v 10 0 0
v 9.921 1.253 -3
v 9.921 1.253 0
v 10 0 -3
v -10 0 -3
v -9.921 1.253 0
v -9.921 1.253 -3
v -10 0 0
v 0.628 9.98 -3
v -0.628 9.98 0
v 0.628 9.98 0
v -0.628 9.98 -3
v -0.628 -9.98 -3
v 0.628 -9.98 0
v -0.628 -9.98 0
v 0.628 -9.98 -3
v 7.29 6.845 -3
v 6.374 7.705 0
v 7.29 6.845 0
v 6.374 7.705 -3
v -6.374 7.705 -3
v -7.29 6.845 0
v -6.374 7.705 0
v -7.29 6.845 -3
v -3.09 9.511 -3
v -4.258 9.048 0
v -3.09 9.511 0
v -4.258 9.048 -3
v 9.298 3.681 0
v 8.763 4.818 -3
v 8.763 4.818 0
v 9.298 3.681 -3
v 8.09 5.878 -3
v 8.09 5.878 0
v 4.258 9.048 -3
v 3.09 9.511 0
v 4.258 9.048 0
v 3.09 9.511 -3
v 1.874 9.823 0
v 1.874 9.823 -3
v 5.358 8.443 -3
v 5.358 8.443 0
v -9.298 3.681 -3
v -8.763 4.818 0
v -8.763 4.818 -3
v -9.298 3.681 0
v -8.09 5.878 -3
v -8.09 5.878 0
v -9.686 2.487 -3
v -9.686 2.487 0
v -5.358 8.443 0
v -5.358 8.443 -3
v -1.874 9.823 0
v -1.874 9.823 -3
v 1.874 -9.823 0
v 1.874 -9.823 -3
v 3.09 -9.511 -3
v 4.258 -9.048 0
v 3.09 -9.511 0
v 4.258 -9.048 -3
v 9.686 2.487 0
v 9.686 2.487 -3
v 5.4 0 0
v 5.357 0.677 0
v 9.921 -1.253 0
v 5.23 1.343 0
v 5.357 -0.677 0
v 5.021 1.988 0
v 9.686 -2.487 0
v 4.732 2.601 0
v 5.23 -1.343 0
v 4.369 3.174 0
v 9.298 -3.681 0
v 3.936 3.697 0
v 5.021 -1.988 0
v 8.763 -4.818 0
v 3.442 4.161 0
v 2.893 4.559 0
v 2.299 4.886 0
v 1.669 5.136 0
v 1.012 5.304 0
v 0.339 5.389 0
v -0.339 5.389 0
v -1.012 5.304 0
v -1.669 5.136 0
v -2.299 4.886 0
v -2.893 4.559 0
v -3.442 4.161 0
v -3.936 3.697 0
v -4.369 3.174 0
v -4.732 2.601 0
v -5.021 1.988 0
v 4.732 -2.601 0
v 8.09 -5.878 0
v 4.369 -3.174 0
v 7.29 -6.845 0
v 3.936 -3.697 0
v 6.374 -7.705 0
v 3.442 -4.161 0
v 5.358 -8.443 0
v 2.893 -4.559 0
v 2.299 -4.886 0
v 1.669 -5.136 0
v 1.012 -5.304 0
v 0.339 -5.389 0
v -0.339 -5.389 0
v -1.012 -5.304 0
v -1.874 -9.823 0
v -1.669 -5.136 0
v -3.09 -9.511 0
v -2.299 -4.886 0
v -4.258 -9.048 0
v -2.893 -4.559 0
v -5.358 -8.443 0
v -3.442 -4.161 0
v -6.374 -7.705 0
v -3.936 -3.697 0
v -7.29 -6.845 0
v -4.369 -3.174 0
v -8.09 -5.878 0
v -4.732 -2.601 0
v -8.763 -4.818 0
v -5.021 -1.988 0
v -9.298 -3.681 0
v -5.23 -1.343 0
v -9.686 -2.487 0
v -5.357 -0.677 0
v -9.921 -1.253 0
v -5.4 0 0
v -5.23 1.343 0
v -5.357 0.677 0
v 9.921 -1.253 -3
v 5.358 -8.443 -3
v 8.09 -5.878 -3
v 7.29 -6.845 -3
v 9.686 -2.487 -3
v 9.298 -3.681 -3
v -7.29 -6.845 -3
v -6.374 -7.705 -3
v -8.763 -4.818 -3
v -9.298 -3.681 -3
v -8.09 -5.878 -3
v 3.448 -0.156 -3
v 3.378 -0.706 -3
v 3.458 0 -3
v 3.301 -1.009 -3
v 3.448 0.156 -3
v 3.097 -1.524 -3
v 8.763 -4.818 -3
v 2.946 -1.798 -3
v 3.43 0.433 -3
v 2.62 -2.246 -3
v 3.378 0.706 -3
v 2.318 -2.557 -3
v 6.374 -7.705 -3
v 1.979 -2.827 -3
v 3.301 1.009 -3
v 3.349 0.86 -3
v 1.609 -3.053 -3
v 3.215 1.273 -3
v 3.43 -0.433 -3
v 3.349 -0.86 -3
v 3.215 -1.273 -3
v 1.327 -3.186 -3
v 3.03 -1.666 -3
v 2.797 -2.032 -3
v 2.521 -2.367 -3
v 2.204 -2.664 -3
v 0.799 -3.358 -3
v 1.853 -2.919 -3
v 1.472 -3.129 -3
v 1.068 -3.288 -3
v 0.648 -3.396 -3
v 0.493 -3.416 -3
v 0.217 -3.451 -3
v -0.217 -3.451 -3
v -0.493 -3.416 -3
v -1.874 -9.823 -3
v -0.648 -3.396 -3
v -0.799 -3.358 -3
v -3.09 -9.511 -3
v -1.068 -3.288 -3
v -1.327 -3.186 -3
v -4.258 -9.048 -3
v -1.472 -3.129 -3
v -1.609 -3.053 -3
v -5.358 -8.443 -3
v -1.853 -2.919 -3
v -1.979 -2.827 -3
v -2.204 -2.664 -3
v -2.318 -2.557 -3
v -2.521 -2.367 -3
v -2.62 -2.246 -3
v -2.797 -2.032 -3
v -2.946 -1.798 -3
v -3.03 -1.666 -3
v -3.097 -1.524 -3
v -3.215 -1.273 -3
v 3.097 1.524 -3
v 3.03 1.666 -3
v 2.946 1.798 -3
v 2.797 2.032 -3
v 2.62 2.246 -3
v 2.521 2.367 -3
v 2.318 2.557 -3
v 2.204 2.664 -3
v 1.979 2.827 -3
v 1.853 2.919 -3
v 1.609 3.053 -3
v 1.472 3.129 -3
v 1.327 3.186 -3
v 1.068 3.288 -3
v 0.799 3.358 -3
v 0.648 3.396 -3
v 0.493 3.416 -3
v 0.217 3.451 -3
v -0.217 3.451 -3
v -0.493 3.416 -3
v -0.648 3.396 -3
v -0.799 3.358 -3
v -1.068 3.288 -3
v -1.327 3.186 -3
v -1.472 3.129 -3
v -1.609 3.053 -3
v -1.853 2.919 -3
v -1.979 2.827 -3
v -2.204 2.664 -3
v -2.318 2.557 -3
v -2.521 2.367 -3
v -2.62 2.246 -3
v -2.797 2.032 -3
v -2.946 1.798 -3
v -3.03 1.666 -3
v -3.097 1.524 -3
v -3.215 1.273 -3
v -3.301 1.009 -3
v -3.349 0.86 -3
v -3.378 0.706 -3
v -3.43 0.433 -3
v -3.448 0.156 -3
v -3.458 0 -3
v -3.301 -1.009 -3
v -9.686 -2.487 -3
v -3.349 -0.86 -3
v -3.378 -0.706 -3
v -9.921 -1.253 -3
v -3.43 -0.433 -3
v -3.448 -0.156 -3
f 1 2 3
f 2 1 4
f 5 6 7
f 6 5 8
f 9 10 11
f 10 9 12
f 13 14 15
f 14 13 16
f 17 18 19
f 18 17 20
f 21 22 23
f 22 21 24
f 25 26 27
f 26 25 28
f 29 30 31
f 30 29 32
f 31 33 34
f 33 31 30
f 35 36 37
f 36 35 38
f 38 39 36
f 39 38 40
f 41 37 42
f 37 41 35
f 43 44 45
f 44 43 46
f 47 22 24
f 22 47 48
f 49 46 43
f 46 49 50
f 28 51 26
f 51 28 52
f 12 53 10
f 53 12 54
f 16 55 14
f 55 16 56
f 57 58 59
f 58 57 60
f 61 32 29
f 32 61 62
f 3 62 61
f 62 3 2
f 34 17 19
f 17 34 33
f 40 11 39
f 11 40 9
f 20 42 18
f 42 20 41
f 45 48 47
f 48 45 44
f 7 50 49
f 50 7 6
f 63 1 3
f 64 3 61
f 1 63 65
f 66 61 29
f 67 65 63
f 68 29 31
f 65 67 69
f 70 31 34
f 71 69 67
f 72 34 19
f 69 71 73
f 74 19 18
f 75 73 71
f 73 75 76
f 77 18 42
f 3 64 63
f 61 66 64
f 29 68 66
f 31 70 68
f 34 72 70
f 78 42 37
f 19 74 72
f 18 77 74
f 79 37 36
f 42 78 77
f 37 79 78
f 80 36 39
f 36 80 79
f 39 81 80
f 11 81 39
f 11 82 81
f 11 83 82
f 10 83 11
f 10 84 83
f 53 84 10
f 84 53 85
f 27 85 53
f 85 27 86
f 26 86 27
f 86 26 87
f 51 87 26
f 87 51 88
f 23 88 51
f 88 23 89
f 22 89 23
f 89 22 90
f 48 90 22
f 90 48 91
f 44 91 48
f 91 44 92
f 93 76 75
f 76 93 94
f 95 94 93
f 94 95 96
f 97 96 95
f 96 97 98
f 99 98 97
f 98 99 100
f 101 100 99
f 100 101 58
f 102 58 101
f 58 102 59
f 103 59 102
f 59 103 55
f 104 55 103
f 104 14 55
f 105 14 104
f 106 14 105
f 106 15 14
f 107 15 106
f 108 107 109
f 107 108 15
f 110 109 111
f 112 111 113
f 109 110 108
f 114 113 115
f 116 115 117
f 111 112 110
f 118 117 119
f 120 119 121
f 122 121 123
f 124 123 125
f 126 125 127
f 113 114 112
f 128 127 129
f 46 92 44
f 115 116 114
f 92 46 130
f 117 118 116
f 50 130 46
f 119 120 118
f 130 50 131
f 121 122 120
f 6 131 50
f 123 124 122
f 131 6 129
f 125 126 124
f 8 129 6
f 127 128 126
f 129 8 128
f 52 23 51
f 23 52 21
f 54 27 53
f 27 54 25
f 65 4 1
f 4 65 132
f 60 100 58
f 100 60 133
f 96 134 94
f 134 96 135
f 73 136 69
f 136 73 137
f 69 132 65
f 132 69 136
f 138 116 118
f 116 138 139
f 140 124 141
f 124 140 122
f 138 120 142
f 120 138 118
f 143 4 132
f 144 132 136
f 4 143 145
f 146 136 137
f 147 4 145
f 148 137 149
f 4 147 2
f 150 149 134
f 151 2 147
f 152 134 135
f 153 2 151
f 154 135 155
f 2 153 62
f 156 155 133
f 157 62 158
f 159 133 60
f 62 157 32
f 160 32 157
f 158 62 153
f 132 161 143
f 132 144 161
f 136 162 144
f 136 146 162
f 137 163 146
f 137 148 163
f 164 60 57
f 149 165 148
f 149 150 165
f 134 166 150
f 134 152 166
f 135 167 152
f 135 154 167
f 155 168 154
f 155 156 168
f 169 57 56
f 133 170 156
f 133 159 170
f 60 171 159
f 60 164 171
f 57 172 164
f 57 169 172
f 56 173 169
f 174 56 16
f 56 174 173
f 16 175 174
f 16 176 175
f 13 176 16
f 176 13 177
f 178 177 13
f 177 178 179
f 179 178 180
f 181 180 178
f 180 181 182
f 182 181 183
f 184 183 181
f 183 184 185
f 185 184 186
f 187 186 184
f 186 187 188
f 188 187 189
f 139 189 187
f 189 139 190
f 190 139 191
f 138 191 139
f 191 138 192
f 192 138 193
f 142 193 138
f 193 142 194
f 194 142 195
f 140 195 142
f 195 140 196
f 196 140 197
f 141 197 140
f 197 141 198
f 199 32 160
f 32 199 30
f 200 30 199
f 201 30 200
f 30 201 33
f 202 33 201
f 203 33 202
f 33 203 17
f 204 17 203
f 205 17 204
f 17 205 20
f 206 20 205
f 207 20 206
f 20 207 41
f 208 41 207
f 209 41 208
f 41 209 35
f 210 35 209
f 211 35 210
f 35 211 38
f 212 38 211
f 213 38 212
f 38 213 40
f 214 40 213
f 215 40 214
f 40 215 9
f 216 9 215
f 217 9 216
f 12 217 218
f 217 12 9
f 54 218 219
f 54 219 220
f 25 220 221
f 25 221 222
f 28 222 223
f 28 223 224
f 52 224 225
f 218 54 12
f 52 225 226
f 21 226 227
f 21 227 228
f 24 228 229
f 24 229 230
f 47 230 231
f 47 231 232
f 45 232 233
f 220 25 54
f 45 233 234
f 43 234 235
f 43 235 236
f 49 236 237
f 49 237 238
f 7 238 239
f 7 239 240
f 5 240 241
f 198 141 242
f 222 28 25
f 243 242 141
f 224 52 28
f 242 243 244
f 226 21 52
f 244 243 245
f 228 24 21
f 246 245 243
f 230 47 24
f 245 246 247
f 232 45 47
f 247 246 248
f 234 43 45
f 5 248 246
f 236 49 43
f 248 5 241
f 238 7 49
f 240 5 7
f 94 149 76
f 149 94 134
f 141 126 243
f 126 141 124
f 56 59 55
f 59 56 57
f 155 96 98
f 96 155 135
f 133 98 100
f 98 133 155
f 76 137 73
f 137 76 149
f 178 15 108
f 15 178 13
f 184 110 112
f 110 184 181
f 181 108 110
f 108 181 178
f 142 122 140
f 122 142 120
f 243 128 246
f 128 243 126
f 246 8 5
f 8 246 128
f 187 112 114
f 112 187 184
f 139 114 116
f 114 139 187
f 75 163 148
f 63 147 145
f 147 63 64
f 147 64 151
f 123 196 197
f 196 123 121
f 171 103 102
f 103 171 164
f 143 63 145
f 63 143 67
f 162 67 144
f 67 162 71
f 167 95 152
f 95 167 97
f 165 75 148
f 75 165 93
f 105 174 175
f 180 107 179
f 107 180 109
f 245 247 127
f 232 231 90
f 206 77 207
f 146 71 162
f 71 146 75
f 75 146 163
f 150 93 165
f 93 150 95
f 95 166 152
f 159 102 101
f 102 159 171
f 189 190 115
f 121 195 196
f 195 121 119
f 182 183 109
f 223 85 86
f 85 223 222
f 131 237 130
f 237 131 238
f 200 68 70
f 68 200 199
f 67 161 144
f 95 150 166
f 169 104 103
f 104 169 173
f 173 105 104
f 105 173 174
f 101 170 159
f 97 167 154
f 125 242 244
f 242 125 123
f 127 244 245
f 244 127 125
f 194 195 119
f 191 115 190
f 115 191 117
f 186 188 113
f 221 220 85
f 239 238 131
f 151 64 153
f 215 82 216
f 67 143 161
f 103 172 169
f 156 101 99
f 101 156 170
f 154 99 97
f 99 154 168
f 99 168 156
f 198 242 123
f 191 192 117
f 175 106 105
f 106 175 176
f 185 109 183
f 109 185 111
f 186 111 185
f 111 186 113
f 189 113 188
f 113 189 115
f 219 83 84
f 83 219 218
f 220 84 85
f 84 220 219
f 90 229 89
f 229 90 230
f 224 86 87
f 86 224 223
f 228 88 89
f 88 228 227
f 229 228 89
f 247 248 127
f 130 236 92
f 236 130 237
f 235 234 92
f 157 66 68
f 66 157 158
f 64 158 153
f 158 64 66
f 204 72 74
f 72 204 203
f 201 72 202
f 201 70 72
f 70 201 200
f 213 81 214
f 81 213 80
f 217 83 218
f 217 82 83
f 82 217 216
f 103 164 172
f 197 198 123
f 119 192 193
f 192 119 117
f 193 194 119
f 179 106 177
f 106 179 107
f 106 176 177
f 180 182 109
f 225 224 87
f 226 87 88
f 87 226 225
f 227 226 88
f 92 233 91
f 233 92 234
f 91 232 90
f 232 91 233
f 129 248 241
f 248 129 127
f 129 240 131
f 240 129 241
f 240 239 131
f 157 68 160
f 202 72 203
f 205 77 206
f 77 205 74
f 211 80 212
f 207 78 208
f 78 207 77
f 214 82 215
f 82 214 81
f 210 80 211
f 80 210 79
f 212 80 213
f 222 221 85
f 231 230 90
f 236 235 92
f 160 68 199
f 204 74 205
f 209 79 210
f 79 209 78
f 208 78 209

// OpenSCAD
$fn = 50;


difference() {
	union() {
		translate(v = [0, 0, -3.0000000000]) {
			cylinder(h = 3, r = 10.0000000000);
		}
		#translate(v = [0, 0, -6.0000000000]) {
			cylinder(h = 6, r = 2.8750000000);
		}
	}
	union() {
		translate(v = [0, 0, 0]) {
			rotate(a = [0, 0, 0]) {
				difference() {
					union() {
						translate(v = [0, 0, -6.0000000000]) {
							cylinder(h = 6, r = 2.6000000000);
						}
						translate(v = [0, 0, -3.9000000000]) {
							cylinder(h = 3.9000000000, r1 = 2.8750000000, r2 = 5.4000000000);
						}
						translate(v = [0, 0, -6.0000000000]) {
							cylinder(h = 6, r = 2.8750000000);
						}
						translate(v = [0, 0, -6.0000000000]) {
							cylinder(h = 6, r = 2.6000000000);
						}
					}
					union();
				}
			}
		}
	}
}
